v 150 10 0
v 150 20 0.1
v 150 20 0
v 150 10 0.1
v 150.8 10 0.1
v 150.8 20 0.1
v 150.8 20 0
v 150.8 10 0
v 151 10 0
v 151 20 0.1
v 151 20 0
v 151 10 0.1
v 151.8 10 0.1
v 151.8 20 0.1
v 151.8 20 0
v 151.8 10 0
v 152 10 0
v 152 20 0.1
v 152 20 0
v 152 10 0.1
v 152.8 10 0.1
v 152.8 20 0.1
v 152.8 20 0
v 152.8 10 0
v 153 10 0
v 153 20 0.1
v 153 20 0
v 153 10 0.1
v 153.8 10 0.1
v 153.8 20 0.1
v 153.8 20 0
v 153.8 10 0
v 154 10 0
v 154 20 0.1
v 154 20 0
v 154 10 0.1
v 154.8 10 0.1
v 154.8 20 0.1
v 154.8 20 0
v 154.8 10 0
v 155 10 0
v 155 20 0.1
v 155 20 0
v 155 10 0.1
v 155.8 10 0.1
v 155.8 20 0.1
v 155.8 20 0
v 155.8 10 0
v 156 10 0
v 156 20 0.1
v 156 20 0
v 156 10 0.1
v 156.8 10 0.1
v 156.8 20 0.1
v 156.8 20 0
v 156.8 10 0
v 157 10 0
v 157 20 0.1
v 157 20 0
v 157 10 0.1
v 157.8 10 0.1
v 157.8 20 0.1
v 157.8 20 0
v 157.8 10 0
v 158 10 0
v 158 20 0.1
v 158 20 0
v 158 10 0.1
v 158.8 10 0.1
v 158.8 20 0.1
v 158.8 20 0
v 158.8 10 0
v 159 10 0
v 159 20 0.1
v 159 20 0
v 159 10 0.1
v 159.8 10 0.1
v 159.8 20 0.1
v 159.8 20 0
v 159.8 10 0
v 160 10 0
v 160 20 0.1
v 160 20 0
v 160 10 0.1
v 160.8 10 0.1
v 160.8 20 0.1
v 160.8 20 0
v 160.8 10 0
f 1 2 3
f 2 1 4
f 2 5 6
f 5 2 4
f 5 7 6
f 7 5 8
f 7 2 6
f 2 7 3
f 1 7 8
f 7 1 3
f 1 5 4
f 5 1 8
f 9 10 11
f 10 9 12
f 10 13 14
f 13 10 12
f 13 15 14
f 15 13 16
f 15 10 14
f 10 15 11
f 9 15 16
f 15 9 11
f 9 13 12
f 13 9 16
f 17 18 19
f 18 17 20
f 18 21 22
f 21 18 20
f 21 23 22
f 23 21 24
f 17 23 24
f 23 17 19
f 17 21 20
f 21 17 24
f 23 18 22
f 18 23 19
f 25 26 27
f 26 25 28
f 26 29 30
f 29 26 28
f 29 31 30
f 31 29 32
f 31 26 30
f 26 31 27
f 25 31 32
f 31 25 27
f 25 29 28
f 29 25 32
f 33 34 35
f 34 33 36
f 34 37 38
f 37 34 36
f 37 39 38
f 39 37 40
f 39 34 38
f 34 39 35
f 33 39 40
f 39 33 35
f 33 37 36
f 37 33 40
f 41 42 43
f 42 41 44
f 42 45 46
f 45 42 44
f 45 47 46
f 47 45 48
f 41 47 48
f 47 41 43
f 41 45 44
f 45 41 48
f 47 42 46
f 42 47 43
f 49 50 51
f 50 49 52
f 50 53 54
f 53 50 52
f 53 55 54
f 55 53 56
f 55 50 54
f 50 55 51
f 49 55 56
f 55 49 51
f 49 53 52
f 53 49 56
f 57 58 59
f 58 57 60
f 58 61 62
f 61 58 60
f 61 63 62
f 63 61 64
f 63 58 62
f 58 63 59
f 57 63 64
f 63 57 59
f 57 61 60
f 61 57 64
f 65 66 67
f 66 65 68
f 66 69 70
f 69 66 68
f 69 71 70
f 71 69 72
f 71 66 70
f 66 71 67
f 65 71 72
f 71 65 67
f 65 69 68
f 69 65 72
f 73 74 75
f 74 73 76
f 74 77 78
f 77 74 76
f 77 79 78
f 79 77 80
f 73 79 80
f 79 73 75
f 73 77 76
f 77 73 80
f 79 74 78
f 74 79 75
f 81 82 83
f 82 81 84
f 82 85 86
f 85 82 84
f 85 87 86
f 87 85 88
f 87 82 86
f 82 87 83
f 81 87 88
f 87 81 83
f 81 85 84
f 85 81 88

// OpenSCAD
translate([10+140,10+0,0])
        for (i = [0 : 10]){
            translate([i,0,0])
                cube(size = [0.8,10,0.1]);
    }
